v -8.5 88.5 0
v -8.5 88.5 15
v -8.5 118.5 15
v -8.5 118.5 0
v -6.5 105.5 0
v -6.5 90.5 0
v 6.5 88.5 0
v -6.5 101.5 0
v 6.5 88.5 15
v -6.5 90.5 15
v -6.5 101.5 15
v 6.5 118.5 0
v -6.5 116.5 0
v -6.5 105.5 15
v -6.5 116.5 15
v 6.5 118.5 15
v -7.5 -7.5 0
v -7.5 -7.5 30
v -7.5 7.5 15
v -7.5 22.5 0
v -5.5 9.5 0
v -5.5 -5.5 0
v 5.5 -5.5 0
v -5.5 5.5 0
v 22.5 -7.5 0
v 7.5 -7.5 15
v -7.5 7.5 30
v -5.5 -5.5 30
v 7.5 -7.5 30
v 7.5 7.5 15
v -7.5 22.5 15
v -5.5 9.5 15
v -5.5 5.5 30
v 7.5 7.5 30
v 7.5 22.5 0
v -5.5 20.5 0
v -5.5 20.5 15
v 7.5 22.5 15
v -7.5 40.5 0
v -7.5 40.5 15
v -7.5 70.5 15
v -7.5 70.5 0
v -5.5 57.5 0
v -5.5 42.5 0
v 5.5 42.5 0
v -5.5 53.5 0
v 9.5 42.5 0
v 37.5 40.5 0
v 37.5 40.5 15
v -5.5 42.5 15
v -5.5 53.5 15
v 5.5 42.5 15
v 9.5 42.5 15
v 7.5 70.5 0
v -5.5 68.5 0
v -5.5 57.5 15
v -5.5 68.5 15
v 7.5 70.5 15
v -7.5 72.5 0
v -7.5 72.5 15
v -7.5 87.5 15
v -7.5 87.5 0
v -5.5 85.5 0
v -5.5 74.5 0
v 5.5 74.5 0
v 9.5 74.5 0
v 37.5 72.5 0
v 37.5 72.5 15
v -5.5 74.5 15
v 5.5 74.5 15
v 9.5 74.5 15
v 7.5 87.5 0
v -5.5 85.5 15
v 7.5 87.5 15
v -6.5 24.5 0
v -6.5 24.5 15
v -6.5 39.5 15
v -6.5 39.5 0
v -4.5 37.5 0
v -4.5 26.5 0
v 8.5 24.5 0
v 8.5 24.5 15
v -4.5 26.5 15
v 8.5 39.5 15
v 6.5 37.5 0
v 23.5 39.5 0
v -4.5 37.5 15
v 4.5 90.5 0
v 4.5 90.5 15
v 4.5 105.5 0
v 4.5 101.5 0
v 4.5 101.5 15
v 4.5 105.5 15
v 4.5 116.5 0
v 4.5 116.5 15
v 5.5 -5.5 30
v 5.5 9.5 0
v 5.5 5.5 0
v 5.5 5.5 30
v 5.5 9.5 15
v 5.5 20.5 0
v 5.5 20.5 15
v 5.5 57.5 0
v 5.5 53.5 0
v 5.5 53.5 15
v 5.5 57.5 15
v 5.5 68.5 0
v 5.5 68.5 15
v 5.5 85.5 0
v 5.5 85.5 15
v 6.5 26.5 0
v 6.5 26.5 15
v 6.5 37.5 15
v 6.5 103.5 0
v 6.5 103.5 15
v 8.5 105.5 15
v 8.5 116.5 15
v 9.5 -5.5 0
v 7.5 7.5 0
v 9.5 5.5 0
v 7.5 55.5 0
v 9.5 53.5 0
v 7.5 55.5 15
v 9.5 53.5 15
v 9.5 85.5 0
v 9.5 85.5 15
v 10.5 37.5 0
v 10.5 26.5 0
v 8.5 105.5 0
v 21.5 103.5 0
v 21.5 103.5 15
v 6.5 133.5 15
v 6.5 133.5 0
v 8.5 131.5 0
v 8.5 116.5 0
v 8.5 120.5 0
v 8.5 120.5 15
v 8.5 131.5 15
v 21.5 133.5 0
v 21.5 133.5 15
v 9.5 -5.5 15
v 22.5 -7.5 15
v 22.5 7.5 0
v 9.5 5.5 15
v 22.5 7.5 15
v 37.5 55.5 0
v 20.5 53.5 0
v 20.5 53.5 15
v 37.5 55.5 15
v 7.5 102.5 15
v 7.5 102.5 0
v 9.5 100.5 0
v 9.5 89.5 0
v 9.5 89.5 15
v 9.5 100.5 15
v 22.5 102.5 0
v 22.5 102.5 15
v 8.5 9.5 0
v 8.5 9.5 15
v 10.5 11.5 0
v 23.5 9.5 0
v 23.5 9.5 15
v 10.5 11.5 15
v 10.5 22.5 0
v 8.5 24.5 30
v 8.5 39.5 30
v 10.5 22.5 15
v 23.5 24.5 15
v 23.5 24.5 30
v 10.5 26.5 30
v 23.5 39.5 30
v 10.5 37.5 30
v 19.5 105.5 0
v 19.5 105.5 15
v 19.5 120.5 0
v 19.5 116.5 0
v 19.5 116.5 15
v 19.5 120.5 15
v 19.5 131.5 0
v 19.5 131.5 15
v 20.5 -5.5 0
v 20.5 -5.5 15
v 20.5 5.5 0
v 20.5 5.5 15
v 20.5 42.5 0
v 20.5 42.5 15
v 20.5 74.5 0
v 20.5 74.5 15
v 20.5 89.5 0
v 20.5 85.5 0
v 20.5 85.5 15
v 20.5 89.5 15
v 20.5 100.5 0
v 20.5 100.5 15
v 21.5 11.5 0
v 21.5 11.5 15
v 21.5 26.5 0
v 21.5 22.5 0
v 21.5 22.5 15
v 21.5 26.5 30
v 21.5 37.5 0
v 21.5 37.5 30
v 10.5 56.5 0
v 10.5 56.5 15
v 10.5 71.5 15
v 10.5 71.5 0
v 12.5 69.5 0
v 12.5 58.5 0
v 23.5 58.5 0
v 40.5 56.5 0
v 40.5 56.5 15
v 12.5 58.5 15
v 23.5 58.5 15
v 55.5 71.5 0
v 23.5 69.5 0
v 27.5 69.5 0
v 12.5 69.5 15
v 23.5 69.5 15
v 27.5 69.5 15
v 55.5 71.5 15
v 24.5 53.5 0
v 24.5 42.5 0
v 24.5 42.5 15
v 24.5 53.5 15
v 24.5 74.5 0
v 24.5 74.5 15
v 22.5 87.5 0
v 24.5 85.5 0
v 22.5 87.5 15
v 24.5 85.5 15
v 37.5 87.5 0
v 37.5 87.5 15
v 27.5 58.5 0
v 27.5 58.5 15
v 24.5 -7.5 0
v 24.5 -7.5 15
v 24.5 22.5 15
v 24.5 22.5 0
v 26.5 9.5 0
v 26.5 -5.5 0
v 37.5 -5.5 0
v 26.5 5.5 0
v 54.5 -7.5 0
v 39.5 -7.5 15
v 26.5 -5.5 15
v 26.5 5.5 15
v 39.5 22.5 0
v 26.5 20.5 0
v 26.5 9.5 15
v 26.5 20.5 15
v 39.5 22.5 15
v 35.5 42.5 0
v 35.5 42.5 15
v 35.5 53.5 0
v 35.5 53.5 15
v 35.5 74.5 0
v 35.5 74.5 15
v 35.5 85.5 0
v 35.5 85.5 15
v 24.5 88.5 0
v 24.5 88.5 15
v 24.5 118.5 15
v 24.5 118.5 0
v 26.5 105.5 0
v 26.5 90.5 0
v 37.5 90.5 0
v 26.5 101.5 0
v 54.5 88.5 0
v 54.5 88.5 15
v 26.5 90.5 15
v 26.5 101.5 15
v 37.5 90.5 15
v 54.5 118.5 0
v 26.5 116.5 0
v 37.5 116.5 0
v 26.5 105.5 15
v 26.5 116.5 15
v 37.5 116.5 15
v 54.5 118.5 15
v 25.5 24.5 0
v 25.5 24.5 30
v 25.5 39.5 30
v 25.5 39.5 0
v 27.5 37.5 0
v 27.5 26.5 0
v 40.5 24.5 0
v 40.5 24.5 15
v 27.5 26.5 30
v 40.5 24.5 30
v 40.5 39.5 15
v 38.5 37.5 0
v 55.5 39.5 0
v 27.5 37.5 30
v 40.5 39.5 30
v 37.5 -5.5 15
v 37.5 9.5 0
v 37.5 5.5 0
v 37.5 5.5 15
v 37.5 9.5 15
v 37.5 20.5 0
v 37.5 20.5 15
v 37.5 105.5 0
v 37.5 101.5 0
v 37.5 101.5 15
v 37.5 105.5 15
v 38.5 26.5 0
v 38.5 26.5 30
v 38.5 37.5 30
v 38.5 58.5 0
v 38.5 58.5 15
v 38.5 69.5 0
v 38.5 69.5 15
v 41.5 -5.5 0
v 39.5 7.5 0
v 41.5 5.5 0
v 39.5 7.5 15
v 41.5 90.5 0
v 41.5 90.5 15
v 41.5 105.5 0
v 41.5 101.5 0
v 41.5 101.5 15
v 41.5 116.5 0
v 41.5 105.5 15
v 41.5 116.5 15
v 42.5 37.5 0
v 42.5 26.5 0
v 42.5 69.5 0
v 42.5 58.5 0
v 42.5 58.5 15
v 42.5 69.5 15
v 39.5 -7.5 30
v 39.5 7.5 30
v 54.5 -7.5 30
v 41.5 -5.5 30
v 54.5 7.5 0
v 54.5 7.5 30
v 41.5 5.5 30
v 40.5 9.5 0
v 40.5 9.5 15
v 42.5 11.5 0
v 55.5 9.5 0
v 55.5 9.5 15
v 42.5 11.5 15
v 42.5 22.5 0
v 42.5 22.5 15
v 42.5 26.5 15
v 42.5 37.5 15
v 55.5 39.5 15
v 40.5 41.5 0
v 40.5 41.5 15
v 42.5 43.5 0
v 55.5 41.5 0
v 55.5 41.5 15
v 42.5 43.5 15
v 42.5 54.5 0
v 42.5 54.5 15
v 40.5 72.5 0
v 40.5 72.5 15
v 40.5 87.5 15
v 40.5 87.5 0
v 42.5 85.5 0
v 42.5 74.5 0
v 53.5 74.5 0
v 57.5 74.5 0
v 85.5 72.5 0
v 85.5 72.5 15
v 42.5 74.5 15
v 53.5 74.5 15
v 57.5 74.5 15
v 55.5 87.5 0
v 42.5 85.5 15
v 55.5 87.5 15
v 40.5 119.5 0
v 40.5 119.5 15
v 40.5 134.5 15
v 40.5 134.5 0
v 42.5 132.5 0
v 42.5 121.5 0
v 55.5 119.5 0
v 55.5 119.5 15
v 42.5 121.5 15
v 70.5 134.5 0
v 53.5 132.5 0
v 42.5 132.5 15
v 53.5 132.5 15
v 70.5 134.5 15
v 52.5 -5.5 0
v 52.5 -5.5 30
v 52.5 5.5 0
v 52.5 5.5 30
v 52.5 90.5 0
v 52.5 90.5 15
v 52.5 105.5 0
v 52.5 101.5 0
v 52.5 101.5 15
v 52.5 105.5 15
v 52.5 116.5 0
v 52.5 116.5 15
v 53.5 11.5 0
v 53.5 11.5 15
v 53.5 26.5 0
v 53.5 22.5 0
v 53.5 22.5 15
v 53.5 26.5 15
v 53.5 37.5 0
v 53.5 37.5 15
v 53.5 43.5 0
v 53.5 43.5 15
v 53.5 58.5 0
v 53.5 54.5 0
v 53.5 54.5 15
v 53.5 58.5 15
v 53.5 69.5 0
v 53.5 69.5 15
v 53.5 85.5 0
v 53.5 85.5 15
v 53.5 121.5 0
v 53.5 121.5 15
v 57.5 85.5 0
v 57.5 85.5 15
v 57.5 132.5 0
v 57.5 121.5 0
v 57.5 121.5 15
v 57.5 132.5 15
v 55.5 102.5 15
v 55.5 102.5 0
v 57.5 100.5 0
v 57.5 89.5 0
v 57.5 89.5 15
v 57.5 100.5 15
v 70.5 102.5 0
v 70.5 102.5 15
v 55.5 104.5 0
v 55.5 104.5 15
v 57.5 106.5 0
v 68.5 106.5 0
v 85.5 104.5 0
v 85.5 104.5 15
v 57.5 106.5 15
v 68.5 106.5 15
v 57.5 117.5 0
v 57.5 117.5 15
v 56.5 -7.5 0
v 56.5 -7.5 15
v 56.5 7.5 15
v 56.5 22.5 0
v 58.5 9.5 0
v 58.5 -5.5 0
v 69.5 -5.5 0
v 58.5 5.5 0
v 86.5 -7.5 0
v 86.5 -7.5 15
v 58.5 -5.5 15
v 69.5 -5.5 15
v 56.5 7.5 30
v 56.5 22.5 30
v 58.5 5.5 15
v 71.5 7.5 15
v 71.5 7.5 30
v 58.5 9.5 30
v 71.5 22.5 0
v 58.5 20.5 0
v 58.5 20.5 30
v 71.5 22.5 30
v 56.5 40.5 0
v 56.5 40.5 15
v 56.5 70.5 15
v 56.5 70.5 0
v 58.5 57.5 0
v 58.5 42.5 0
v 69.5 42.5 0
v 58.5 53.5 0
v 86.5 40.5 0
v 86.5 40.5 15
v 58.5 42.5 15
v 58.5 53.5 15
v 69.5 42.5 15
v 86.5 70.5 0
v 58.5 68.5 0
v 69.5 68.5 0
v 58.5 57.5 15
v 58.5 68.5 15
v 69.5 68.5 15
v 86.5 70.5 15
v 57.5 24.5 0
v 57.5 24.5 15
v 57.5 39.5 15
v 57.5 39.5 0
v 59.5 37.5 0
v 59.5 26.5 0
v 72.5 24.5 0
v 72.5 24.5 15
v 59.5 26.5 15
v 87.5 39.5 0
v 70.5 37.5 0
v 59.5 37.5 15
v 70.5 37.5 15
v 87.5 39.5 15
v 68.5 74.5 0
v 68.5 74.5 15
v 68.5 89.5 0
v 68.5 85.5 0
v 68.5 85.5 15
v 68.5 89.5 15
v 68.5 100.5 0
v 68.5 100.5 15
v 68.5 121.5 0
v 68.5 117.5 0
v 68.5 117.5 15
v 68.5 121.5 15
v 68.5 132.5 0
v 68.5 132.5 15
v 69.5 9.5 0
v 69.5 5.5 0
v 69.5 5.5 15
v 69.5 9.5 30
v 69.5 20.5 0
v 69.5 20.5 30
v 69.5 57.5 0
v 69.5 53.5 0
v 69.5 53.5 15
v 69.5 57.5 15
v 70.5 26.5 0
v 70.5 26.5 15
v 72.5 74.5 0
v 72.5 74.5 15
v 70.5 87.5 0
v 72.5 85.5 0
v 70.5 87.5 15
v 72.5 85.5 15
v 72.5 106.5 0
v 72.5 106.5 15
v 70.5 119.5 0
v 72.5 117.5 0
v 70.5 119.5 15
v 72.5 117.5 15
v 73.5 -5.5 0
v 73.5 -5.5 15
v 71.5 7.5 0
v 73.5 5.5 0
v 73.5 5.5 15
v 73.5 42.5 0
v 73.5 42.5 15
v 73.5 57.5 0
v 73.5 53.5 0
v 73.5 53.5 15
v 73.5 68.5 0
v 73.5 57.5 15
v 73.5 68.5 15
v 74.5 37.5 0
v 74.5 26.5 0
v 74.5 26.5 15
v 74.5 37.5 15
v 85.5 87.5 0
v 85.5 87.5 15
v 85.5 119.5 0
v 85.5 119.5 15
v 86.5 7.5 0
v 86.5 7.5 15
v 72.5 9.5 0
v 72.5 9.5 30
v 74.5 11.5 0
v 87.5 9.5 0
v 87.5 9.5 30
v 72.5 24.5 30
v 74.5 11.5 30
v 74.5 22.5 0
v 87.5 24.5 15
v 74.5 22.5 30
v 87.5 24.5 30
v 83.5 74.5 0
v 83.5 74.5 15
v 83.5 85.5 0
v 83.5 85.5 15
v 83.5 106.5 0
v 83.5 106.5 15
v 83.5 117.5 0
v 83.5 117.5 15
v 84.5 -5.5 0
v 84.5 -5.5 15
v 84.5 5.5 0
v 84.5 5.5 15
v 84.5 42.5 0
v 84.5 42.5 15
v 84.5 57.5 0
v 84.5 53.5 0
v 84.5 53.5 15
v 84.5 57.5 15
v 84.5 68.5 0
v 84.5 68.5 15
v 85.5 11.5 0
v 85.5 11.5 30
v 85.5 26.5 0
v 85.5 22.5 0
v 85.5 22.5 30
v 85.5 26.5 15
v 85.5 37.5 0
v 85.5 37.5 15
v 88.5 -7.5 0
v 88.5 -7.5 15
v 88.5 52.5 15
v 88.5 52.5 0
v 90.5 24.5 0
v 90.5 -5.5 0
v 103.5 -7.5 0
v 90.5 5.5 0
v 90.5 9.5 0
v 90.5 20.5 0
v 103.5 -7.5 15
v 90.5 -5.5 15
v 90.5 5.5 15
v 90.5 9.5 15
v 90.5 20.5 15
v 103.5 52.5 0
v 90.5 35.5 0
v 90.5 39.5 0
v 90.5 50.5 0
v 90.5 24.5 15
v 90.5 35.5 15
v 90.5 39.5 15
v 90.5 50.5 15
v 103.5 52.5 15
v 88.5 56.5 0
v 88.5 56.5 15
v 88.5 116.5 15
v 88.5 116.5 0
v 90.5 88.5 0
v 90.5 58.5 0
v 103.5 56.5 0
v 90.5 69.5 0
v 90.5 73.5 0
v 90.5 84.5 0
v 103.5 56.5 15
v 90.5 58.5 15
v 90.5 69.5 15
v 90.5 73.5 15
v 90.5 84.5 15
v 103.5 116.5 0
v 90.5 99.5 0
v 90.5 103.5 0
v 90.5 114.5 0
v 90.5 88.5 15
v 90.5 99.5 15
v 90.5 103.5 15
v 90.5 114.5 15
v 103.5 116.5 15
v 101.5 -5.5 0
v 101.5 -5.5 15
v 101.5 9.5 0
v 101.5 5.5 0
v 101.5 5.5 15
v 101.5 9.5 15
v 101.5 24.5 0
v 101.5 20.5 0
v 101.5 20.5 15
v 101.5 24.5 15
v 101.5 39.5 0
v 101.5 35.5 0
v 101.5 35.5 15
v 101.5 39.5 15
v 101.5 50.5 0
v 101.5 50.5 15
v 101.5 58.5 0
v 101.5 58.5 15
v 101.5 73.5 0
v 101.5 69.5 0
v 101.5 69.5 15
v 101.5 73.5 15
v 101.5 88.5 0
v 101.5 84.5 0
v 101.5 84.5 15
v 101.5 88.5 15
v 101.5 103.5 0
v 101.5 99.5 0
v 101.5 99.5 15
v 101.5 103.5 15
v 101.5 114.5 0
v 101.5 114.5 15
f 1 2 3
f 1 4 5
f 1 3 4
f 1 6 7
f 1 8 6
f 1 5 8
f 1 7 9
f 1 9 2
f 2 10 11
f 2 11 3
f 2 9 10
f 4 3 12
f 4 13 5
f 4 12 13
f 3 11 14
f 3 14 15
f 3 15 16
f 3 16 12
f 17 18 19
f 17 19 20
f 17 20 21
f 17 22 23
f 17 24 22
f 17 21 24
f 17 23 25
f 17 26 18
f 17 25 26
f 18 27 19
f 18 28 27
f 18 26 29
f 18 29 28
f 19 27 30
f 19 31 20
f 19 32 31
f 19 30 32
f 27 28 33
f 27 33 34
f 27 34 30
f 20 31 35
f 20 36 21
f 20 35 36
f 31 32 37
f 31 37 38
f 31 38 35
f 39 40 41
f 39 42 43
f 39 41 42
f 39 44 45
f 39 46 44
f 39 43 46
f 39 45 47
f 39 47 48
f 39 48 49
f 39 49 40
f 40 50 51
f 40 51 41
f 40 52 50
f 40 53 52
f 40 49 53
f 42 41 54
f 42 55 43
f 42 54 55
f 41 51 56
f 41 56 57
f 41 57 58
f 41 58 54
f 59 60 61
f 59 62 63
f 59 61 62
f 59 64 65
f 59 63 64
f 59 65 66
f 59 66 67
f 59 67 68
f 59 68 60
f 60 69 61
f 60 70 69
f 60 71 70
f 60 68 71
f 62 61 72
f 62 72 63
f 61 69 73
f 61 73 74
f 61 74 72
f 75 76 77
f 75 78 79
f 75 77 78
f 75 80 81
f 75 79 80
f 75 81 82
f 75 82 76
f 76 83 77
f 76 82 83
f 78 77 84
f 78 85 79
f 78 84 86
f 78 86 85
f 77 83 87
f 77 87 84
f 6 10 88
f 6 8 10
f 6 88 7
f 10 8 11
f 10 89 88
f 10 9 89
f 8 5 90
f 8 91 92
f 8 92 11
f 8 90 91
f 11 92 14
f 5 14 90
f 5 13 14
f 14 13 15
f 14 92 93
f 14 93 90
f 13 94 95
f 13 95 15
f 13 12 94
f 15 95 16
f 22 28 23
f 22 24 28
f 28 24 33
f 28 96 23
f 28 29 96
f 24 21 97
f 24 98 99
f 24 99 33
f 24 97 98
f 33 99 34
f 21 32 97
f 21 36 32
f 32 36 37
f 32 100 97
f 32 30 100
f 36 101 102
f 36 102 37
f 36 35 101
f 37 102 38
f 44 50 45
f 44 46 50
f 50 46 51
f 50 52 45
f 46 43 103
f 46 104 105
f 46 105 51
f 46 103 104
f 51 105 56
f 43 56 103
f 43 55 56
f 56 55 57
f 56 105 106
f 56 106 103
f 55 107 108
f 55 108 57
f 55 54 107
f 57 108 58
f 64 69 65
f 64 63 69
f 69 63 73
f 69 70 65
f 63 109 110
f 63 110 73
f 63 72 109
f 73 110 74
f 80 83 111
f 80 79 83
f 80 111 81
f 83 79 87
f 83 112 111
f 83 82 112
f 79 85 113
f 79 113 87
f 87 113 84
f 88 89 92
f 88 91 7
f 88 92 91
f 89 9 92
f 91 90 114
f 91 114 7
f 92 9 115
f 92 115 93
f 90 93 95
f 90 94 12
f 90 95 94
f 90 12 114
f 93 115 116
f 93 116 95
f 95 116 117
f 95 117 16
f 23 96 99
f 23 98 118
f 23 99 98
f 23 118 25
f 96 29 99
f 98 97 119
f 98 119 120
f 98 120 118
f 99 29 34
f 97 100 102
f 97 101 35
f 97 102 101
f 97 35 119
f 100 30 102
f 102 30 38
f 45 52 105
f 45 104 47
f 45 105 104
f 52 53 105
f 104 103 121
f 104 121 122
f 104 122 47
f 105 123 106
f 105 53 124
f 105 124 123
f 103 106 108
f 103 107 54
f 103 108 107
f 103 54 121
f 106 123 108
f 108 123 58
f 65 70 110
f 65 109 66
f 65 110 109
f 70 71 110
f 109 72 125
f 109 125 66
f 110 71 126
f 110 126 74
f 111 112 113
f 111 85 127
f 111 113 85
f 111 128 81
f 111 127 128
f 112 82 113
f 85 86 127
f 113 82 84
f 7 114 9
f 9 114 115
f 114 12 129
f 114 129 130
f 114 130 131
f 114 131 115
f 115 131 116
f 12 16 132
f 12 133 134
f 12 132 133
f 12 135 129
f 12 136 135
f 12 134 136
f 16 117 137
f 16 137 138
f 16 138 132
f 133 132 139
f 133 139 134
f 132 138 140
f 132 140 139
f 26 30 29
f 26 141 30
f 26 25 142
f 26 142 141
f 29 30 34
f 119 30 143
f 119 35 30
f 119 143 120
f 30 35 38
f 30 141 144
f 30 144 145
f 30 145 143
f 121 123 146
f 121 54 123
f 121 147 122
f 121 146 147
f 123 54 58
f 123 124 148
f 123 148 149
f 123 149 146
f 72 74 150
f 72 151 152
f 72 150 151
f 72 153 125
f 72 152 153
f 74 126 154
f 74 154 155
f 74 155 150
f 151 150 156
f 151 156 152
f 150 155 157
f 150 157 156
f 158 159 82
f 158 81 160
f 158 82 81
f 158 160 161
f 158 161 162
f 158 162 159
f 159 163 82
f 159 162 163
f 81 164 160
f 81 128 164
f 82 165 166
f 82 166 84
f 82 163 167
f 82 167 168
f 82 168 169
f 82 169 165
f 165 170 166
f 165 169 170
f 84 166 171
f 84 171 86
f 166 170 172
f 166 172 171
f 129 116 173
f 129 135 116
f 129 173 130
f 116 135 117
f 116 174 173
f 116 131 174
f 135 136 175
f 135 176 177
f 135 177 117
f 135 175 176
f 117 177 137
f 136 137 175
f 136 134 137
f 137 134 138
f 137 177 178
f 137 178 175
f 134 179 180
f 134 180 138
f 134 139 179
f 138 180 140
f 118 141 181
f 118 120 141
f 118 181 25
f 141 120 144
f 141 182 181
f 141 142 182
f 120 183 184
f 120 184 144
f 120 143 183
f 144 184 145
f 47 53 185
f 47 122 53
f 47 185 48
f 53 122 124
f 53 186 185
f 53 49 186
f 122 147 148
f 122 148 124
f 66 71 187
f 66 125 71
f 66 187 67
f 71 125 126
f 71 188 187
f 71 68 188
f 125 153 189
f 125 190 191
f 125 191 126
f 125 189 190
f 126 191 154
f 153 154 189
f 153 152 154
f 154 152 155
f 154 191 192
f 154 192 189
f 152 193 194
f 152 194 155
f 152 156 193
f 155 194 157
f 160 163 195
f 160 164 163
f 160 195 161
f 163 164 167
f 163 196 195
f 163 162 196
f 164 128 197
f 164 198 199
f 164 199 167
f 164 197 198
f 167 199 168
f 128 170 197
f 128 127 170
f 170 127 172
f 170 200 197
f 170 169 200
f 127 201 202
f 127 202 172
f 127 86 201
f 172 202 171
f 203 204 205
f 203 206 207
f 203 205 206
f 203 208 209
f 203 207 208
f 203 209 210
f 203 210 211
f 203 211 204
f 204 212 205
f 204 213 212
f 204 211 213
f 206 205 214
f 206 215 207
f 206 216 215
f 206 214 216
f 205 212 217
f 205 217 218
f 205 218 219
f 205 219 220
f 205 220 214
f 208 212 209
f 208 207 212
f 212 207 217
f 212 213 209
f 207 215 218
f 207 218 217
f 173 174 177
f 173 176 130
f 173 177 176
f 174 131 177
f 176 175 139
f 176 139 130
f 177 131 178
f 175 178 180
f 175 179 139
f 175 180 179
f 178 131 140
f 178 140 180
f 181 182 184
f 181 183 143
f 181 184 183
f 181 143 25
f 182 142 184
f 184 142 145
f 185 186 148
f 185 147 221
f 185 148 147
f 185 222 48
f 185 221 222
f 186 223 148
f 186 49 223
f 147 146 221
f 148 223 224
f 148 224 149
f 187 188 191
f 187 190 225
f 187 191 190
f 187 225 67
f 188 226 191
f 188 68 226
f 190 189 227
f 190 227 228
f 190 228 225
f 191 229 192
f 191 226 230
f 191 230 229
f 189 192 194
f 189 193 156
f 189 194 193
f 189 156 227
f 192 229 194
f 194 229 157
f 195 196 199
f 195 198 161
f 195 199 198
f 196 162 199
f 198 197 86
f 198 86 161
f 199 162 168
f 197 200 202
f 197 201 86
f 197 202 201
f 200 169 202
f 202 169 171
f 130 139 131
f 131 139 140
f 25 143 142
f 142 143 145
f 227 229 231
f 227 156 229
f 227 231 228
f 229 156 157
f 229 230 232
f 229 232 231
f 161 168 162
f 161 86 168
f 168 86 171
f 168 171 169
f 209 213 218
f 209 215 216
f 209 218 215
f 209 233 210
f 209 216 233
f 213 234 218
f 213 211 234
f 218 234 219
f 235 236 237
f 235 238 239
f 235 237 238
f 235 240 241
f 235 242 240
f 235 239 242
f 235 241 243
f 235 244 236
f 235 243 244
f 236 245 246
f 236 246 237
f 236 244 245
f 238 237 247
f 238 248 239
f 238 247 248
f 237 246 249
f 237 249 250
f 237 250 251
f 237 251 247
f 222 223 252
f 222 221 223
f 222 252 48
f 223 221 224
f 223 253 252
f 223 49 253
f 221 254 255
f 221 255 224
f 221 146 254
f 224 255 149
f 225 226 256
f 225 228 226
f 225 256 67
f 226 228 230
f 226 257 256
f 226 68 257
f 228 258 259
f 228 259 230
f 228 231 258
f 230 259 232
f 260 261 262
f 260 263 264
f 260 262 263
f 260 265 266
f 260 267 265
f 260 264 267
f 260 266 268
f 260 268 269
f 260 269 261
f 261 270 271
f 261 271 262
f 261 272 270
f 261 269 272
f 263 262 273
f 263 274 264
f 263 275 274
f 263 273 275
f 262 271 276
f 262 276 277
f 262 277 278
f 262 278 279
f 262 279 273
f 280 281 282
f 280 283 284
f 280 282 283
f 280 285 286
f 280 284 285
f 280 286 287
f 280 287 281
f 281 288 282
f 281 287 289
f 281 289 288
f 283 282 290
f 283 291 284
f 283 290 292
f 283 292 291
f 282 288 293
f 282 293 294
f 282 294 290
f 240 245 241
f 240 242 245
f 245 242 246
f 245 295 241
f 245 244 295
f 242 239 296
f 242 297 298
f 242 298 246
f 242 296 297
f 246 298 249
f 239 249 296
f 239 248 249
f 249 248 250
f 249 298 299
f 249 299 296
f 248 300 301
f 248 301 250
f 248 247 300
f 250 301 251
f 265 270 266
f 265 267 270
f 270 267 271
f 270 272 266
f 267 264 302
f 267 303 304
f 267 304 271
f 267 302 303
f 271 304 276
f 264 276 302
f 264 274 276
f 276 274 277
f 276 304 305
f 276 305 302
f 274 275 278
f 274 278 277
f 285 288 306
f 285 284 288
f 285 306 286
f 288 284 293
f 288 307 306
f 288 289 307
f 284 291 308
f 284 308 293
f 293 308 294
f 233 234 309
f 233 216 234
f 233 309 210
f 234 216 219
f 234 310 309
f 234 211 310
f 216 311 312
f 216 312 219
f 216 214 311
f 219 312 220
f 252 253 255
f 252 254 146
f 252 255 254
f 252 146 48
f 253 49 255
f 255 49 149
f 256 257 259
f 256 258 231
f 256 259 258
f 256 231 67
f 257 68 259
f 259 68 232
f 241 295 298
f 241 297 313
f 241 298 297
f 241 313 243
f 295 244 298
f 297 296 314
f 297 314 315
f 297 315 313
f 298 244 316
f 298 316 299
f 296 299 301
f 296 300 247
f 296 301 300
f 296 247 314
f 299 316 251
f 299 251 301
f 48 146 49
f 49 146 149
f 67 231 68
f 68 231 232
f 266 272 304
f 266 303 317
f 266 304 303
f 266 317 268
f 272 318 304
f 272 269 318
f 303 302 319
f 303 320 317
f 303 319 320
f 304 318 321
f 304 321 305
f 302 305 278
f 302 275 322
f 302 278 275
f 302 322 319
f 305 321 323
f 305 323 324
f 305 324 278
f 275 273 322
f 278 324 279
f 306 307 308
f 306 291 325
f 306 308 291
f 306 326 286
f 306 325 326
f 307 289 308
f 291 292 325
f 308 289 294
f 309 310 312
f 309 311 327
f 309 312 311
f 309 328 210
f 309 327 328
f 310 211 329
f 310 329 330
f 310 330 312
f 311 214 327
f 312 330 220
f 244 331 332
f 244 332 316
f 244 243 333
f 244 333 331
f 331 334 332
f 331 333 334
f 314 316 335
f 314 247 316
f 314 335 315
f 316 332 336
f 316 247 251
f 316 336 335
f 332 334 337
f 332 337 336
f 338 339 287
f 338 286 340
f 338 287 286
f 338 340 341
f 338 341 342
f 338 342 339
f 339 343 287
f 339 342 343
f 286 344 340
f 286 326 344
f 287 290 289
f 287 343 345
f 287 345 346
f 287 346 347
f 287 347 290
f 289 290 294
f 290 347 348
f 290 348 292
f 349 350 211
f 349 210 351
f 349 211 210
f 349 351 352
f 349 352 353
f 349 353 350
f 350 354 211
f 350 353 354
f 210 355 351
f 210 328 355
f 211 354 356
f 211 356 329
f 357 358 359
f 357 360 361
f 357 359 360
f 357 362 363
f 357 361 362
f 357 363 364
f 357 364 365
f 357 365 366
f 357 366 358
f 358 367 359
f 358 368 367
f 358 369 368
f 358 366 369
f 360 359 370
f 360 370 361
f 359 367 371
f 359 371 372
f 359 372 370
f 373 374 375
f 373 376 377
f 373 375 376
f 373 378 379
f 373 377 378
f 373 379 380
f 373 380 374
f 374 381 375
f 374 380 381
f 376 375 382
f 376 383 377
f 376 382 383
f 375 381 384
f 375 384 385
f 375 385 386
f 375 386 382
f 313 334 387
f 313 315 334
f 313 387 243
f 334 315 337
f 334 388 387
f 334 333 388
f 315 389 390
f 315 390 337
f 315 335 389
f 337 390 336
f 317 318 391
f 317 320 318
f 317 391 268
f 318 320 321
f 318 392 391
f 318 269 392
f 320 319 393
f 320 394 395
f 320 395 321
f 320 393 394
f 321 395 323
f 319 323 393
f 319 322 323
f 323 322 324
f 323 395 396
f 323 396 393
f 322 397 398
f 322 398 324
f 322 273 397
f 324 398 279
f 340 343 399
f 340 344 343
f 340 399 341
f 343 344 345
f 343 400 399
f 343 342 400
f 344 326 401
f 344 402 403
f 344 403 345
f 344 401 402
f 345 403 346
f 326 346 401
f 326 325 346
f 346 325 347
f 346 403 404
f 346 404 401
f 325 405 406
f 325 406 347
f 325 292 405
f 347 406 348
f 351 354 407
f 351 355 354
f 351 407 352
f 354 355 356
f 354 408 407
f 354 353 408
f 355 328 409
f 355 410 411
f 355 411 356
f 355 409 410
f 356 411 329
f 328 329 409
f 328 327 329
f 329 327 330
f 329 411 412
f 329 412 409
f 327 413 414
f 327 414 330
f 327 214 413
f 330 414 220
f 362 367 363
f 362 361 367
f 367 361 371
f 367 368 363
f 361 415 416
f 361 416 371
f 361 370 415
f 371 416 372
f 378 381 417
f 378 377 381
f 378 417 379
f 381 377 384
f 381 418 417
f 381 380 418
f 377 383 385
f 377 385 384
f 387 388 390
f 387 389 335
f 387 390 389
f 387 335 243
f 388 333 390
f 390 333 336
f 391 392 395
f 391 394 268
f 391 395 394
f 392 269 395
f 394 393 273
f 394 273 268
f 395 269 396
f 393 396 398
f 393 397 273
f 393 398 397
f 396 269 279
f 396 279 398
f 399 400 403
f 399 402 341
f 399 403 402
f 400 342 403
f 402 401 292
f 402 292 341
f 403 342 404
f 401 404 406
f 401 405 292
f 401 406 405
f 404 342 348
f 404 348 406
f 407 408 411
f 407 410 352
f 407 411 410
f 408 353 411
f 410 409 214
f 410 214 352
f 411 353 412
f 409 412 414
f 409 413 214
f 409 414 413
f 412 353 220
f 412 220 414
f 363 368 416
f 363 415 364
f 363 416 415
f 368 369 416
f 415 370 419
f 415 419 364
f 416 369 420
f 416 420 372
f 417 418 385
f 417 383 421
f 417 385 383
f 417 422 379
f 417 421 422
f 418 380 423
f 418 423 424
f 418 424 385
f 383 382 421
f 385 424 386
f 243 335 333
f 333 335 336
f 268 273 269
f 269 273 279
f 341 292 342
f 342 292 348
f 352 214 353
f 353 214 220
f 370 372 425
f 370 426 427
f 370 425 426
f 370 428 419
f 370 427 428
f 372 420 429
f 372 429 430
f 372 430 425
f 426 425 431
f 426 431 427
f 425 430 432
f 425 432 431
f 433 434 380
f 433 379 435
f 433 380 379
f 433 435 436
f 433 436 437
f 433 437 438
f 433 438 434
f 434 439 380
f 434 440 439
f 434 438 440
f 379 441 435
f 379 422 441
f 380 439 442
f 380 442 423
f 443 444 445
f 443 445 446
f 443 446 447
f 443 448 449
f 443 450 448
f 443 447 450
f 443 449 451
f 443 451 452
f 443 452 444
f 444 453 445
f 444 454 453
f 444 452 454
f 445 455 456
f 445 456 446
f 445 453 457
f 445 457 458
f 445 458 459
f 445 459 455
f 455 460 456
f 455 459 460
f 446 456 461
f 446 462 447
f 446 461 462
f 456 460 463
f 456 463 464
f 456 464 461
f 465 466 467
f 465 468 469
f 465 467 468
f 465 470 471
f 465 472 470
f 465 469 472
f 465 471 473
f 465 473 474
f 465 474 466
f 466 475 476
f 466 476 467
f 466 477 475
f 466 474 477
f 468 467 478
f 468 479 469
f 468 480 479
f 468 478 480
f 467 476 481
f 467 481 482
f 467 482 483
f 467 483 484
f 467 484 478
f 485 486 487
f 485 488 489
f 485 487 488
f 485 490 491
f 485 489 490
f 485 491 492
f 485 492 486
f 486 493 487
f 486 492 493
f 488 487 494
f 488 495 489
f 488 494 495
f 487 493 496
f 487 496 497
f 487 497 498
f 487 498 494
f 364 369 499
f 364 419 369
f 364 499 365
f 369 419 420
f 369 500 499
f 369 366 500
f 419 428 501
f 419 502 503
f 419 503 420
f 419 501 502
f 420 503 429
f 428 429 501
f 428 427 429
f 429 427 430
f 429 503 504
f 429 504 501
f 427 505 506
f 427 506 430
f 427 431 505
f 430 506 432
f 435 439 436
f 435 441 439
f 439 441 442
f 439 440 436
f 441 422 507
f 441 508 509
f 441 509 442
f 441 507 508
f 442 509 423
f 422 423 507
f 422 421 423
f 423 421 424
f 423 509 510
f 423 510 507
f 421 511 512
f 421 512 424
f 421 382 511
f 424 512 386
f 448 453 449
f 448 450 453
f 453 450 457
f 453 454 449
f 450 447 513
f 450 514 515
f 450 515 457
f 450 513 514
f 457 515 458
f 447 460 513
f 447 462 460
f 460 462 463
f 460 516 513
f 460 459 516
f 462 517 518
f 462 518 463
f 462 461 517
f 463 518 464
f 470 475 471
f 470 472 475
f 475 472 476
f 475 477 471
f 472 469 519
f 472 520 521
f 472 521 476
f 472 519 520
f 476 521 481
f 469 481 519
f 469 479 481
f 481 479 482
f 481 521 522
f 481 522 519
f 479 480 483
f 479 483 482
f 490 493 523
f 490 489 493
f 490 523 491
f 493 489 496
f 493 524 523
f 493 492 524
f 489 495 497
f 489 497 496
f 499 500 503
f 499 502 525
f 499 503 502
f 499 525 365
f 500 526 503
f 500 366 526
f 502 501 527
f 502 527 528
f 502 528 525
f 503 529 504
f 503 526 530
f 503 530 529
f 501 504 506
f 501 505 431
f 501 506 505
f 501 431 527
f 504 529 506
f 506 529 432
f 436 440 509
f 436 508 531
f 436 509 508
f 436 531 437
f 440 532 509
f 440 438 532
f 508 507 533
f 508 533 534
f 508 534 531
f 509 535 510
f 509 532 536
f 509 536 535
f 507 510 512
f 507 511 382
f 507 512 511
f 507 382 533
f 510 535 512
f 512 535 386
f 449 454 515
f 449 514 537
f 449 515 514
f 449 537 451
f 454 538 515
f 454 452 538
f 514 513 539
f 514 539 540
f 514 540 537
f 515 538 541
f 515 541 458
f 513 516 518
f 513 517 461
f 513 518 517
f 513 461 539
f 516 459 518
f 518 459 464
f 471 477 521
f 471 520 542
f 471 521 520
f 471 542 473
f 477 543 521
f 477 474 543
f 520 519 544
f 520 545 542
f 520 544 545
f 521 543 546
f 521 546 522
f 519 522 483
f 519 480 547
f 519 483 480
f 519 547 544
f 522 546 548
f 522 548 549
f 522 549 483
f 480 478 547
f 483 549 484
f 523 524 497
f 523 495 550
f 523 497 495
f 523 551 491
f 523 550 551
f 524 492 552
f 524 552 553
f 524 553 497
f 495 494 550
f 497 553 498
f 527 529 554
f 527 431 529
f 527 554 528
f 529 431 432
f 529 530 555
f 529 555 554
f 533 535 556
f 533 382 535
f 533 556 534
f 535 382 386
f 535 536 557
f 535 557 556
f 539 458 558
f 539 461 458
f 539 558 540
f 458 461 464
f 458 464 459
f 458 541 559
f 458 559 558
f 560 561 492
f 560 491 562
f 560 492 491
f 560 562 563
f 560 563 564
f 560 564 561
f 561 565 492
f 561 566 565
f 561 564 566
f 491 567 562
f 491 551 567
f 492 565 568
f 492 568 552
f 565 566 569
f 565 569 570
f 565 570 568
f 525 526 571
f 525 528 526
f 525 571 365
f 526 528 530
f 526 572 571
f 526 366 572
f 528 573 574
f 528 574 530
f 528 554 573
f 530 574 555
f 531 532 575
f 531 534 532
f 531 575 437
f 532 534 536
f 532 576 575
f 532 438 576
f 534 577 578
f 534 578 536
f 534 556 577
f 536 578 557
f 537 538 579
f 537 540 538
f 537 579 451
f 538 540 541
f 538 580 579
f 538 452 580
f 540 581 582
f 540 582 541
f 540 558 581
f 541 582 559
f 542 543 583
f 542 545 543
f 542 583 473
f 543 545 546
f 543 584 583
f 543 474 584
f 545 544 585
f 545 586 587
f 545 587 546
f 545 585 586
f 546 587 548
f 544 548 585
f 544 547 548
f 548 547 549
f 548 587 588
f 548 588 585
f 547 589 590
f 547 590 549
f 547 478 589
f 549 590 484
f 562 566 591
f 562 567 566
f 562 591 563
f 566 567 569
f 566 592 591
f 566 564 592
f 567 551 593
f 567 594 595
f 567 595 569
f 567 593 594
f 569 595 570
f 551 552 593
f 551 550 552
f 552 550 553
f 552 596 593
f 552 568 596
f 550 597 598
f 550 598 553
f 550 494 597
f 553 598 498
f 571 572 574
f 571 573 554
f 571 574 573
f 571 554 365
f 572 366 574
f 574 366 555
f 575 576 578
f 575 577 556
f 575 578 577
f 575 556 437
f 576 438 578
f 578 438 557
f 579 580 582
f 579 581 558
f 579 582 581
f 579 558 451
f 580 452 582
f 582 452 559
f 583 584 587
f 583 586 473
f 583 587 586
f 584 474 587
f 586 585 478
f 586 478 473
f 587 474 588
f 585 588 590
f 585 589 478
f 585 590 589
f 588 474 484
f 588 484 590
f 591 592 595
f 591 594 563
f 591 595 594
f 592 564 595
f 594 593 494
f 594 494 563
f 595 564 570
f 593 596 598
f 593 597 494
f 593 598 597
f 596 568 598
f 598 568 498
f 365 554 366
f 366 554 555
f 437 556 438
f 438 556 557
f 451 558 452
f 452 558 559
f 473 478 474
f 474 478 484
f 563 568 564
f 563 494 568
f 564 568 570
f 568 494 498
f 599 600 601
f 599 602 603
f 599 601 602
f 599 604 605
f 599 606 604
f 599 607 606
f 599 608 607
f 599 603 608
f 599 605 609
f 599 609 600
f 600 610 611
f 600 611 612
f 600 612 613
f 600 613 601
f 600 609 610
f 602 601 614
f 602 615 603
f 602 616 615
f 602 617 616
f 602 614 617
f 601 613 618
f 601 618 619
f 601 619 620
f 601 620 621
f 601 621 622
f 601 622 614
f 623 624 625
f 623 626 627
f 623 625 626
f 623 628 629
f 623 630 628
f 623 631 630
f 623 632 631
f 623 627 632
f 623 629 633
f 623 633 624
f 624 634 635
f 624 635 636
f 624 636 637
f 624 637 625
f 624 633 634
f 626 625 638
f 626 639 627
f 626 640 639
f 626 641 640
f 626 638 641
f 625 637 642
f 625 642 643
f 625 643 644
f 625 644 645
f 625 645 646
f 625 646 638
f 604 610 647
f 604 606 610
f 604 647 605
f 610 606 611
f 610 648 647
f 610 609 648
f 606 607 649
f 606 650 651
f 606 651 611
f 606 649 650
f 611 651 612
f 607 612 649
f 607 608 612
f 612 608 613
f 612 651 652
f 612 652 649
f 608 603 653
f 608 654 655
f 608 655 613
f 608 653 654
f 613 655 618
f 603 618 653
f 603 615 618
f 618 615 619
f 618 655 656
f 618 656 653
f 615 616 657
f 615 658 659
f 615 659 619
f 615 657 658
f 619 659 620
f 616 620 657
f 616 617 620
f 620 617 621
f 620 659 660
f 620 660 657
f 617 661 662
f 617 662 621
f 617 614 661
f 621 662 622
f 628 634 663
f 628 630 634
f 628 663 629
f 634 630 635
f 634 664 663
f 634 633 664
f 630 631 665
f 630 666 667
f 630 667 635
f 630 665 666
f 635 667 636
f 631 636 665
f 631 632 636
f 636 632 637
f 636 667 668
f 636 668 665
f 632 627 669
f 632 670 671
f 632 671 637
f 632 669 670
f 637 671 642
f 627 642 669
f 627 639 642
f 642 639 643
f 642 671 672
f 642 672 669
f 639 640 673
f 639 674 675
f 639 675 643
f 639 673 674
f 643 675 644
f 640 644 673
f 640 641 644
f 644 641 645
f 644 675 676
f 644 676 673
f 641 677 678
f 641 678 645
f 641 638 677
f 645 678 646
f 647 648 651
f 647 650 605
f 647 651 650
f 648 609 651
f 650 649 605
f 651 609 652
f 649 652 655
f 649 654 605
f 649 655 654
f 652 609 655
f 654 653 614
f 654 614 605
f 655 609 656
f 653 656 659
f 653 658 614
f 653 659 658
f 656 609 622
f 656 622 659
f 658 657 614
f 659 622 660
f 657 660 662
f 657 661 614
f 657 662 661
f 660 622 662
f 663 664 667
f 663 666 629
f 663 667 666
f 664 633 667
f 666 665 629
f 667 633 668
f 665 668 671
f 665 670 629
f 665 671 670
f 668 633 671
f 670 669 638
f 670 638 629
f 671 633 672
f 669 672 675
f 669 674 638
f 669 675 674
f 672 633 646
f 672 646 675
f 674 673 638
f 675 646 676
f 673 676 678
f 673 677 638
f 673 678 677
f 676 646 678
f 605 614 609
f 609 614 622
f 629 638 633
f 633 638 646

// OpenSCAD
// cubegame -- don't build your software on a wobbly platform
//
// "sometimes the only way to win is to use the timecube." -- War Games, 1983
//
// "any sufficiently advanced technology is indistinguashable from cheating."
//     -- arthur c clarke
//
//
// 42g 6 pieces
// 230g 142g rocker (hollow)
//
// 16mm = 5/8 inch
// 3/8 inch magnet fits inside 15mm cube
//
//   [][]        []
//     [][]      [][][]        [][][][]
//   Z-block     J-block       I-block
//
//   [][]          []      
//   [][]        [][][]
//   O-block     T-block
//
//   []          {}            []
//   {}[]        [][]          []{}          <-- {} is two cubes tall
//   B-block     D-block       F-block
//   "branch"    "right screw" "left screw"
//
//
//  L-block = J-block
//  S-block = Z-block
//
//
// 2×2×8 box filled with one set of all tetrominoes: 
//
//    D Z Z L O T T T              when viewed from side
//    D D Z Z O B T F  back slice
//
//    D L L L O B F F
//    I I I I O B B F  front slice
//
// TODO: rename according to wiki?
// https://en.wikipedia.org/wiki/Tetromino

$fn=100;

U=15;
WALL=2;

// building blocks

module normcube(c) {
    // normalize a cube to be positioned around the origin, like a cylinder.
    translate([-c.x/2,-c.y/2,0]) cube(c);
}

module C() {
    cube([U,U,U]);
}

module X() {
  difference() {
    cube([U,U,U]);
    translate([WALL,WALL,0]) cube([U-2*WALL,U-2*WALL,U]);
  }
}

module _() {}

// tetrominos

module zblock() {
  { translate([0*U,U,0]) X(); translate([1*U,U,0]) X(); translate([2*U,U,0]) _(); }
  { translate([0*U,0,0]) _(); translate([1*U,0,0]) X(); translate([2*U,0,0]) X(); }
}

module iblock() {
  { translate([0*U,0,0]) X(); translate([1*U,0,0]) X(); translate([2*U,0,0]) X(); translate([3*U,0,0]) X(); }
}

module jblock() {
  { translate([0*U,U,0]) X(); translate([1*U,U,0]) _(); translate([2*U,U,0]) _(); }
  { translate([0*U,0,0]) X(); translate([1*U,0,0]) X(); translate([2*U,0,0]) X(); }
}

module oblock() {
  { translate([0*U,U,0]) X(); translate([1*U,U,0]) X(); translate([2*U,U,0]) _(); }
  { translate([0*U,0,0]) X(); translate([1*U,0,0]) X(); translate([2*U,0,0]) _(); }
}

module tblock() {
  { translate([0*U,U,0]) _(); translate([1*U,U,0]) X(); translate([2*U,U,0]) _(); }
  { translate([0*U,0,0]) X(); translate([1*U,0,0]) X(); translate([2*U,0,0]) X(); }
}

module bblock() {
  { translate([0*U,0*U,0*U]) X(); translate([1*U,0*U,0*U]) X(); translate([2*U,0*U,0*U]) _(); }
  { translate([0*U,1*U,0*U]) X(); translate([1*U,1*U,0*U]) _(); translate([2*U,1*U,0*U]) _(); }
  { translate([0*U,0*U,1*U]) X(); }
}

module dblock() {
  { translate([0*U,0*U,0*U]) X(); translate([1*U,0*U,0*U]) X(); translate([2*U,0*U,0*U]) _(); }
  { translate([0*U,1*U,0*U]) X(); translate([1*U,1*U,0*U]) _(); translate([2*U,1*U,0*U]) _(); }
  { translate([1*U,0*U,1*U]) X(); }
}

module fblock() {
  { translate([0*U,0*U,0*U]) X(); translate([1*U,0*U,0*U]) X(); translate([2*U,0*U,0*U]) _(); }
  { translate([0*U,1*U,0*U]) X(); translate([1*U,1*U,0*U]) _(); translate([2*U,1*U,0*U]) _(); }
  { translate([0*U,1*U,1*U]) X(); }
}

module magblock() {
  difference() {
    cube([U,U,U-WALL]);
    translate([WALL,WALL,1]) cube([U-WALL*2,U-WALL*2,U-WALL*2+1]);
  }
}

module magblock_cover() {
  cube([U,U,2]);
  translate([WALL,WALL,WALL]) cube([U-WALL*2,U-WALL*2,WALL]);
}

module base1() {
  EDGE=5;
  WW=70;
  DD=55;
  HT=11;
  MAG_WW=25.4/2+1;  // 1/2 x 1/2 x 3/8 inch magnet
  MAG_DD=25.4/2+1;
  
  difference() {
    union() {
      normcube([WW,DD,2]);
      normcube([WW-EDGE*2,DD-EDGE*2,HT]);
    }
    normcube([MAG_WW,MAG_DD,HT-1]);
  }
}

module base() {
  // for 1/2 x 1/2 x 1/2 inch magnet
  MAG=25.4/2+1;
  EDGE=5;
  WW=70;
  DD=55;
  HT=MAG+2;
  
  difference() {
    hull() {
      normcube([WW,DD,1]);
      normcube([WW-EDGE*2,DD-EDGE*2,HT]);
    }
    normcube([MAG,MAG,MAG+1]);
  }
}

module rocker() {
  //#translate([-5,-40,0]) cube([3,60,U*5]);
  module rcube() { rotate([0,0,45]) cube([U,U,U]); }
  df=sqrt(U*U+U*U);
  ncubes=7;
  translate([-ncubes*(df-3)/2,0,0]) {
    for (i=[0:ncubes-1]) {
      translate([i*df,0,0]) rcube();
    }
    cube([(ncubes-1)*df,df/2,U]);
  }
  // gap filler
  #translate([0,-5,0]) normcube([128,15,U]);
  translate([0,15,0]) difference() {
    // base, chord=105, perpendicular=20, diam=112
    DIAM=110;
    scale([1.1,1,1]) cylinder(U,d=DIAM);
    translate([0,20,0]) scale([1.1,1,1]) normcube([DIAM,DIAM-20,U]);
    // timecube cutout
    V=U+.5;
    #translate([0,-44,0]) normcube([V,V,U]);
    }
}


module tray() {
  NX=8;
  NY=2;
  HH=8;
  EXTRA=0.7;
  difference() {
    union() {
      normcube([NX*U+2*WALL,NY*U+2*WALL,HH]);
      //normcube([2*U,NY*U+2*WALL,22]);
      translate([0,17,0]) rotate([90,180,0]) difference() {
        cylinder(NY*U+2*WALL,r=22);
        translate([-22,0,0]) cube([22*2,22,NY*U+2*WALL]);
      }
    }
    translate([0,0,2]) normcube([NX*U+EXTRA,NY*U+EXTRA,30]);
    normcube([NX*U-WALL*3,NY*U-WALL*3,30]);
  }
}

module tray4() {
  NY=8; // TODO: dehardcode
  for (i=[0:3]) {
    translate([0,i*(U+2*WALL+U-2),0]) tray();
  }
}


// Various assortments below

BX=(U*3.5);
BY=(U*2.5);

module all_cubes() {
  translate([0*BX,0*BY,0]) zblock(); translate([1*BX,0*BY,0]) jblock(); translate([2*BX,0*BY,0]) iblock();
  translate([0*BX,1*BY,0]) oblock(); translate([1*BX,1*BY,0]) tblock();
  translate([0*BX,2*BY,0]) bblock(); translate([1*BX,2*BY,0]) dblock(); translate([2*BX,2*BY,0]) fblock();
}

module v1many(numx, numy, sizex, sizey) {
  for (i = [0 : numx - 1]) {
    for (j = [0 : numy - 1]) {
      translate([i * sizex, j * sizey, 0])
        children(); // This will invoke the child module
    }
  }
}

module shiftz_many(numx, numy, sizex, sizey, shiftz) {
  for (i = [0 : numx - 1]) {
    for (j = [0 : numy - 1]) {
      translate([i * sizex, j * sizey, i * shiftz])
        children(); // This will invoke the child module
    }
  }
}

module many(numx, numy, sizex, sizey, shifty) {
  for (i = [0 : numx - 1]) {
    for (j = [0 : numy - 1]) {
      translate([i * sizex, j * sizey + i * shifty, 0])
        children(); // This will invoke the child module
    }
  }
}


module squeezed_all_cubes_x2() {
  V=2*U+2;
  module Q() { translate([-U/2,-U/2,0]) children(); }

  translate([ 0*V,0*V,0]) rotate([0,0,0])  Q()bblock();
  translate([.5*V,1*V,0]) rotate([0,0,180])Q()bblock();

  translate([  1*V,0*V,0]) rotate([0,0,0])  Q()dblock();
  translate([1.5*V,1*V,0]) rotate([0,0,180])Q()dblock();

  translate([  2*V,0*V,0]) rotate([0,0,0])  Q()fblock();
  translate([2.5*V,1*V,0]) rotate([0,0,180])Q()fblock();

  translate([3*V,0*V,0]) rotate([0,0, 90])Q()iblock();
  translate([3*V,2*V,0]) rotate([0,0, 90])Q()iblock();

  translate([0*V,1.5*V,0]) rotate([0,0,0])Q()jblock();
  translate([1.5*V,2*V,0]) rotate([0,0,180])Q()jblock();

  translate([ 2*V,1.5*V,0]) rotate([0,0,0])  Q()oblock();
  translate([ 1*V,3.0*V,0]) rotate([0,0,0])  Q()oblock();

  translate([ 0*V,2.5*V,0]) rotate([0,0,0])  Q()tblock();
  translate([ 1.5*V,2.5*V,0]) rotate([0,0,0])  Q()tblock();

  translate([ .5*V-2,3.0*V,0]) rotate([0,0,90])  Q()zblock();
  #translate([ 1.5*V,3.5*V,0]) rotate([0,0,0])  Q()zblock();
  
}
squeezed_all_cubes_x2();
